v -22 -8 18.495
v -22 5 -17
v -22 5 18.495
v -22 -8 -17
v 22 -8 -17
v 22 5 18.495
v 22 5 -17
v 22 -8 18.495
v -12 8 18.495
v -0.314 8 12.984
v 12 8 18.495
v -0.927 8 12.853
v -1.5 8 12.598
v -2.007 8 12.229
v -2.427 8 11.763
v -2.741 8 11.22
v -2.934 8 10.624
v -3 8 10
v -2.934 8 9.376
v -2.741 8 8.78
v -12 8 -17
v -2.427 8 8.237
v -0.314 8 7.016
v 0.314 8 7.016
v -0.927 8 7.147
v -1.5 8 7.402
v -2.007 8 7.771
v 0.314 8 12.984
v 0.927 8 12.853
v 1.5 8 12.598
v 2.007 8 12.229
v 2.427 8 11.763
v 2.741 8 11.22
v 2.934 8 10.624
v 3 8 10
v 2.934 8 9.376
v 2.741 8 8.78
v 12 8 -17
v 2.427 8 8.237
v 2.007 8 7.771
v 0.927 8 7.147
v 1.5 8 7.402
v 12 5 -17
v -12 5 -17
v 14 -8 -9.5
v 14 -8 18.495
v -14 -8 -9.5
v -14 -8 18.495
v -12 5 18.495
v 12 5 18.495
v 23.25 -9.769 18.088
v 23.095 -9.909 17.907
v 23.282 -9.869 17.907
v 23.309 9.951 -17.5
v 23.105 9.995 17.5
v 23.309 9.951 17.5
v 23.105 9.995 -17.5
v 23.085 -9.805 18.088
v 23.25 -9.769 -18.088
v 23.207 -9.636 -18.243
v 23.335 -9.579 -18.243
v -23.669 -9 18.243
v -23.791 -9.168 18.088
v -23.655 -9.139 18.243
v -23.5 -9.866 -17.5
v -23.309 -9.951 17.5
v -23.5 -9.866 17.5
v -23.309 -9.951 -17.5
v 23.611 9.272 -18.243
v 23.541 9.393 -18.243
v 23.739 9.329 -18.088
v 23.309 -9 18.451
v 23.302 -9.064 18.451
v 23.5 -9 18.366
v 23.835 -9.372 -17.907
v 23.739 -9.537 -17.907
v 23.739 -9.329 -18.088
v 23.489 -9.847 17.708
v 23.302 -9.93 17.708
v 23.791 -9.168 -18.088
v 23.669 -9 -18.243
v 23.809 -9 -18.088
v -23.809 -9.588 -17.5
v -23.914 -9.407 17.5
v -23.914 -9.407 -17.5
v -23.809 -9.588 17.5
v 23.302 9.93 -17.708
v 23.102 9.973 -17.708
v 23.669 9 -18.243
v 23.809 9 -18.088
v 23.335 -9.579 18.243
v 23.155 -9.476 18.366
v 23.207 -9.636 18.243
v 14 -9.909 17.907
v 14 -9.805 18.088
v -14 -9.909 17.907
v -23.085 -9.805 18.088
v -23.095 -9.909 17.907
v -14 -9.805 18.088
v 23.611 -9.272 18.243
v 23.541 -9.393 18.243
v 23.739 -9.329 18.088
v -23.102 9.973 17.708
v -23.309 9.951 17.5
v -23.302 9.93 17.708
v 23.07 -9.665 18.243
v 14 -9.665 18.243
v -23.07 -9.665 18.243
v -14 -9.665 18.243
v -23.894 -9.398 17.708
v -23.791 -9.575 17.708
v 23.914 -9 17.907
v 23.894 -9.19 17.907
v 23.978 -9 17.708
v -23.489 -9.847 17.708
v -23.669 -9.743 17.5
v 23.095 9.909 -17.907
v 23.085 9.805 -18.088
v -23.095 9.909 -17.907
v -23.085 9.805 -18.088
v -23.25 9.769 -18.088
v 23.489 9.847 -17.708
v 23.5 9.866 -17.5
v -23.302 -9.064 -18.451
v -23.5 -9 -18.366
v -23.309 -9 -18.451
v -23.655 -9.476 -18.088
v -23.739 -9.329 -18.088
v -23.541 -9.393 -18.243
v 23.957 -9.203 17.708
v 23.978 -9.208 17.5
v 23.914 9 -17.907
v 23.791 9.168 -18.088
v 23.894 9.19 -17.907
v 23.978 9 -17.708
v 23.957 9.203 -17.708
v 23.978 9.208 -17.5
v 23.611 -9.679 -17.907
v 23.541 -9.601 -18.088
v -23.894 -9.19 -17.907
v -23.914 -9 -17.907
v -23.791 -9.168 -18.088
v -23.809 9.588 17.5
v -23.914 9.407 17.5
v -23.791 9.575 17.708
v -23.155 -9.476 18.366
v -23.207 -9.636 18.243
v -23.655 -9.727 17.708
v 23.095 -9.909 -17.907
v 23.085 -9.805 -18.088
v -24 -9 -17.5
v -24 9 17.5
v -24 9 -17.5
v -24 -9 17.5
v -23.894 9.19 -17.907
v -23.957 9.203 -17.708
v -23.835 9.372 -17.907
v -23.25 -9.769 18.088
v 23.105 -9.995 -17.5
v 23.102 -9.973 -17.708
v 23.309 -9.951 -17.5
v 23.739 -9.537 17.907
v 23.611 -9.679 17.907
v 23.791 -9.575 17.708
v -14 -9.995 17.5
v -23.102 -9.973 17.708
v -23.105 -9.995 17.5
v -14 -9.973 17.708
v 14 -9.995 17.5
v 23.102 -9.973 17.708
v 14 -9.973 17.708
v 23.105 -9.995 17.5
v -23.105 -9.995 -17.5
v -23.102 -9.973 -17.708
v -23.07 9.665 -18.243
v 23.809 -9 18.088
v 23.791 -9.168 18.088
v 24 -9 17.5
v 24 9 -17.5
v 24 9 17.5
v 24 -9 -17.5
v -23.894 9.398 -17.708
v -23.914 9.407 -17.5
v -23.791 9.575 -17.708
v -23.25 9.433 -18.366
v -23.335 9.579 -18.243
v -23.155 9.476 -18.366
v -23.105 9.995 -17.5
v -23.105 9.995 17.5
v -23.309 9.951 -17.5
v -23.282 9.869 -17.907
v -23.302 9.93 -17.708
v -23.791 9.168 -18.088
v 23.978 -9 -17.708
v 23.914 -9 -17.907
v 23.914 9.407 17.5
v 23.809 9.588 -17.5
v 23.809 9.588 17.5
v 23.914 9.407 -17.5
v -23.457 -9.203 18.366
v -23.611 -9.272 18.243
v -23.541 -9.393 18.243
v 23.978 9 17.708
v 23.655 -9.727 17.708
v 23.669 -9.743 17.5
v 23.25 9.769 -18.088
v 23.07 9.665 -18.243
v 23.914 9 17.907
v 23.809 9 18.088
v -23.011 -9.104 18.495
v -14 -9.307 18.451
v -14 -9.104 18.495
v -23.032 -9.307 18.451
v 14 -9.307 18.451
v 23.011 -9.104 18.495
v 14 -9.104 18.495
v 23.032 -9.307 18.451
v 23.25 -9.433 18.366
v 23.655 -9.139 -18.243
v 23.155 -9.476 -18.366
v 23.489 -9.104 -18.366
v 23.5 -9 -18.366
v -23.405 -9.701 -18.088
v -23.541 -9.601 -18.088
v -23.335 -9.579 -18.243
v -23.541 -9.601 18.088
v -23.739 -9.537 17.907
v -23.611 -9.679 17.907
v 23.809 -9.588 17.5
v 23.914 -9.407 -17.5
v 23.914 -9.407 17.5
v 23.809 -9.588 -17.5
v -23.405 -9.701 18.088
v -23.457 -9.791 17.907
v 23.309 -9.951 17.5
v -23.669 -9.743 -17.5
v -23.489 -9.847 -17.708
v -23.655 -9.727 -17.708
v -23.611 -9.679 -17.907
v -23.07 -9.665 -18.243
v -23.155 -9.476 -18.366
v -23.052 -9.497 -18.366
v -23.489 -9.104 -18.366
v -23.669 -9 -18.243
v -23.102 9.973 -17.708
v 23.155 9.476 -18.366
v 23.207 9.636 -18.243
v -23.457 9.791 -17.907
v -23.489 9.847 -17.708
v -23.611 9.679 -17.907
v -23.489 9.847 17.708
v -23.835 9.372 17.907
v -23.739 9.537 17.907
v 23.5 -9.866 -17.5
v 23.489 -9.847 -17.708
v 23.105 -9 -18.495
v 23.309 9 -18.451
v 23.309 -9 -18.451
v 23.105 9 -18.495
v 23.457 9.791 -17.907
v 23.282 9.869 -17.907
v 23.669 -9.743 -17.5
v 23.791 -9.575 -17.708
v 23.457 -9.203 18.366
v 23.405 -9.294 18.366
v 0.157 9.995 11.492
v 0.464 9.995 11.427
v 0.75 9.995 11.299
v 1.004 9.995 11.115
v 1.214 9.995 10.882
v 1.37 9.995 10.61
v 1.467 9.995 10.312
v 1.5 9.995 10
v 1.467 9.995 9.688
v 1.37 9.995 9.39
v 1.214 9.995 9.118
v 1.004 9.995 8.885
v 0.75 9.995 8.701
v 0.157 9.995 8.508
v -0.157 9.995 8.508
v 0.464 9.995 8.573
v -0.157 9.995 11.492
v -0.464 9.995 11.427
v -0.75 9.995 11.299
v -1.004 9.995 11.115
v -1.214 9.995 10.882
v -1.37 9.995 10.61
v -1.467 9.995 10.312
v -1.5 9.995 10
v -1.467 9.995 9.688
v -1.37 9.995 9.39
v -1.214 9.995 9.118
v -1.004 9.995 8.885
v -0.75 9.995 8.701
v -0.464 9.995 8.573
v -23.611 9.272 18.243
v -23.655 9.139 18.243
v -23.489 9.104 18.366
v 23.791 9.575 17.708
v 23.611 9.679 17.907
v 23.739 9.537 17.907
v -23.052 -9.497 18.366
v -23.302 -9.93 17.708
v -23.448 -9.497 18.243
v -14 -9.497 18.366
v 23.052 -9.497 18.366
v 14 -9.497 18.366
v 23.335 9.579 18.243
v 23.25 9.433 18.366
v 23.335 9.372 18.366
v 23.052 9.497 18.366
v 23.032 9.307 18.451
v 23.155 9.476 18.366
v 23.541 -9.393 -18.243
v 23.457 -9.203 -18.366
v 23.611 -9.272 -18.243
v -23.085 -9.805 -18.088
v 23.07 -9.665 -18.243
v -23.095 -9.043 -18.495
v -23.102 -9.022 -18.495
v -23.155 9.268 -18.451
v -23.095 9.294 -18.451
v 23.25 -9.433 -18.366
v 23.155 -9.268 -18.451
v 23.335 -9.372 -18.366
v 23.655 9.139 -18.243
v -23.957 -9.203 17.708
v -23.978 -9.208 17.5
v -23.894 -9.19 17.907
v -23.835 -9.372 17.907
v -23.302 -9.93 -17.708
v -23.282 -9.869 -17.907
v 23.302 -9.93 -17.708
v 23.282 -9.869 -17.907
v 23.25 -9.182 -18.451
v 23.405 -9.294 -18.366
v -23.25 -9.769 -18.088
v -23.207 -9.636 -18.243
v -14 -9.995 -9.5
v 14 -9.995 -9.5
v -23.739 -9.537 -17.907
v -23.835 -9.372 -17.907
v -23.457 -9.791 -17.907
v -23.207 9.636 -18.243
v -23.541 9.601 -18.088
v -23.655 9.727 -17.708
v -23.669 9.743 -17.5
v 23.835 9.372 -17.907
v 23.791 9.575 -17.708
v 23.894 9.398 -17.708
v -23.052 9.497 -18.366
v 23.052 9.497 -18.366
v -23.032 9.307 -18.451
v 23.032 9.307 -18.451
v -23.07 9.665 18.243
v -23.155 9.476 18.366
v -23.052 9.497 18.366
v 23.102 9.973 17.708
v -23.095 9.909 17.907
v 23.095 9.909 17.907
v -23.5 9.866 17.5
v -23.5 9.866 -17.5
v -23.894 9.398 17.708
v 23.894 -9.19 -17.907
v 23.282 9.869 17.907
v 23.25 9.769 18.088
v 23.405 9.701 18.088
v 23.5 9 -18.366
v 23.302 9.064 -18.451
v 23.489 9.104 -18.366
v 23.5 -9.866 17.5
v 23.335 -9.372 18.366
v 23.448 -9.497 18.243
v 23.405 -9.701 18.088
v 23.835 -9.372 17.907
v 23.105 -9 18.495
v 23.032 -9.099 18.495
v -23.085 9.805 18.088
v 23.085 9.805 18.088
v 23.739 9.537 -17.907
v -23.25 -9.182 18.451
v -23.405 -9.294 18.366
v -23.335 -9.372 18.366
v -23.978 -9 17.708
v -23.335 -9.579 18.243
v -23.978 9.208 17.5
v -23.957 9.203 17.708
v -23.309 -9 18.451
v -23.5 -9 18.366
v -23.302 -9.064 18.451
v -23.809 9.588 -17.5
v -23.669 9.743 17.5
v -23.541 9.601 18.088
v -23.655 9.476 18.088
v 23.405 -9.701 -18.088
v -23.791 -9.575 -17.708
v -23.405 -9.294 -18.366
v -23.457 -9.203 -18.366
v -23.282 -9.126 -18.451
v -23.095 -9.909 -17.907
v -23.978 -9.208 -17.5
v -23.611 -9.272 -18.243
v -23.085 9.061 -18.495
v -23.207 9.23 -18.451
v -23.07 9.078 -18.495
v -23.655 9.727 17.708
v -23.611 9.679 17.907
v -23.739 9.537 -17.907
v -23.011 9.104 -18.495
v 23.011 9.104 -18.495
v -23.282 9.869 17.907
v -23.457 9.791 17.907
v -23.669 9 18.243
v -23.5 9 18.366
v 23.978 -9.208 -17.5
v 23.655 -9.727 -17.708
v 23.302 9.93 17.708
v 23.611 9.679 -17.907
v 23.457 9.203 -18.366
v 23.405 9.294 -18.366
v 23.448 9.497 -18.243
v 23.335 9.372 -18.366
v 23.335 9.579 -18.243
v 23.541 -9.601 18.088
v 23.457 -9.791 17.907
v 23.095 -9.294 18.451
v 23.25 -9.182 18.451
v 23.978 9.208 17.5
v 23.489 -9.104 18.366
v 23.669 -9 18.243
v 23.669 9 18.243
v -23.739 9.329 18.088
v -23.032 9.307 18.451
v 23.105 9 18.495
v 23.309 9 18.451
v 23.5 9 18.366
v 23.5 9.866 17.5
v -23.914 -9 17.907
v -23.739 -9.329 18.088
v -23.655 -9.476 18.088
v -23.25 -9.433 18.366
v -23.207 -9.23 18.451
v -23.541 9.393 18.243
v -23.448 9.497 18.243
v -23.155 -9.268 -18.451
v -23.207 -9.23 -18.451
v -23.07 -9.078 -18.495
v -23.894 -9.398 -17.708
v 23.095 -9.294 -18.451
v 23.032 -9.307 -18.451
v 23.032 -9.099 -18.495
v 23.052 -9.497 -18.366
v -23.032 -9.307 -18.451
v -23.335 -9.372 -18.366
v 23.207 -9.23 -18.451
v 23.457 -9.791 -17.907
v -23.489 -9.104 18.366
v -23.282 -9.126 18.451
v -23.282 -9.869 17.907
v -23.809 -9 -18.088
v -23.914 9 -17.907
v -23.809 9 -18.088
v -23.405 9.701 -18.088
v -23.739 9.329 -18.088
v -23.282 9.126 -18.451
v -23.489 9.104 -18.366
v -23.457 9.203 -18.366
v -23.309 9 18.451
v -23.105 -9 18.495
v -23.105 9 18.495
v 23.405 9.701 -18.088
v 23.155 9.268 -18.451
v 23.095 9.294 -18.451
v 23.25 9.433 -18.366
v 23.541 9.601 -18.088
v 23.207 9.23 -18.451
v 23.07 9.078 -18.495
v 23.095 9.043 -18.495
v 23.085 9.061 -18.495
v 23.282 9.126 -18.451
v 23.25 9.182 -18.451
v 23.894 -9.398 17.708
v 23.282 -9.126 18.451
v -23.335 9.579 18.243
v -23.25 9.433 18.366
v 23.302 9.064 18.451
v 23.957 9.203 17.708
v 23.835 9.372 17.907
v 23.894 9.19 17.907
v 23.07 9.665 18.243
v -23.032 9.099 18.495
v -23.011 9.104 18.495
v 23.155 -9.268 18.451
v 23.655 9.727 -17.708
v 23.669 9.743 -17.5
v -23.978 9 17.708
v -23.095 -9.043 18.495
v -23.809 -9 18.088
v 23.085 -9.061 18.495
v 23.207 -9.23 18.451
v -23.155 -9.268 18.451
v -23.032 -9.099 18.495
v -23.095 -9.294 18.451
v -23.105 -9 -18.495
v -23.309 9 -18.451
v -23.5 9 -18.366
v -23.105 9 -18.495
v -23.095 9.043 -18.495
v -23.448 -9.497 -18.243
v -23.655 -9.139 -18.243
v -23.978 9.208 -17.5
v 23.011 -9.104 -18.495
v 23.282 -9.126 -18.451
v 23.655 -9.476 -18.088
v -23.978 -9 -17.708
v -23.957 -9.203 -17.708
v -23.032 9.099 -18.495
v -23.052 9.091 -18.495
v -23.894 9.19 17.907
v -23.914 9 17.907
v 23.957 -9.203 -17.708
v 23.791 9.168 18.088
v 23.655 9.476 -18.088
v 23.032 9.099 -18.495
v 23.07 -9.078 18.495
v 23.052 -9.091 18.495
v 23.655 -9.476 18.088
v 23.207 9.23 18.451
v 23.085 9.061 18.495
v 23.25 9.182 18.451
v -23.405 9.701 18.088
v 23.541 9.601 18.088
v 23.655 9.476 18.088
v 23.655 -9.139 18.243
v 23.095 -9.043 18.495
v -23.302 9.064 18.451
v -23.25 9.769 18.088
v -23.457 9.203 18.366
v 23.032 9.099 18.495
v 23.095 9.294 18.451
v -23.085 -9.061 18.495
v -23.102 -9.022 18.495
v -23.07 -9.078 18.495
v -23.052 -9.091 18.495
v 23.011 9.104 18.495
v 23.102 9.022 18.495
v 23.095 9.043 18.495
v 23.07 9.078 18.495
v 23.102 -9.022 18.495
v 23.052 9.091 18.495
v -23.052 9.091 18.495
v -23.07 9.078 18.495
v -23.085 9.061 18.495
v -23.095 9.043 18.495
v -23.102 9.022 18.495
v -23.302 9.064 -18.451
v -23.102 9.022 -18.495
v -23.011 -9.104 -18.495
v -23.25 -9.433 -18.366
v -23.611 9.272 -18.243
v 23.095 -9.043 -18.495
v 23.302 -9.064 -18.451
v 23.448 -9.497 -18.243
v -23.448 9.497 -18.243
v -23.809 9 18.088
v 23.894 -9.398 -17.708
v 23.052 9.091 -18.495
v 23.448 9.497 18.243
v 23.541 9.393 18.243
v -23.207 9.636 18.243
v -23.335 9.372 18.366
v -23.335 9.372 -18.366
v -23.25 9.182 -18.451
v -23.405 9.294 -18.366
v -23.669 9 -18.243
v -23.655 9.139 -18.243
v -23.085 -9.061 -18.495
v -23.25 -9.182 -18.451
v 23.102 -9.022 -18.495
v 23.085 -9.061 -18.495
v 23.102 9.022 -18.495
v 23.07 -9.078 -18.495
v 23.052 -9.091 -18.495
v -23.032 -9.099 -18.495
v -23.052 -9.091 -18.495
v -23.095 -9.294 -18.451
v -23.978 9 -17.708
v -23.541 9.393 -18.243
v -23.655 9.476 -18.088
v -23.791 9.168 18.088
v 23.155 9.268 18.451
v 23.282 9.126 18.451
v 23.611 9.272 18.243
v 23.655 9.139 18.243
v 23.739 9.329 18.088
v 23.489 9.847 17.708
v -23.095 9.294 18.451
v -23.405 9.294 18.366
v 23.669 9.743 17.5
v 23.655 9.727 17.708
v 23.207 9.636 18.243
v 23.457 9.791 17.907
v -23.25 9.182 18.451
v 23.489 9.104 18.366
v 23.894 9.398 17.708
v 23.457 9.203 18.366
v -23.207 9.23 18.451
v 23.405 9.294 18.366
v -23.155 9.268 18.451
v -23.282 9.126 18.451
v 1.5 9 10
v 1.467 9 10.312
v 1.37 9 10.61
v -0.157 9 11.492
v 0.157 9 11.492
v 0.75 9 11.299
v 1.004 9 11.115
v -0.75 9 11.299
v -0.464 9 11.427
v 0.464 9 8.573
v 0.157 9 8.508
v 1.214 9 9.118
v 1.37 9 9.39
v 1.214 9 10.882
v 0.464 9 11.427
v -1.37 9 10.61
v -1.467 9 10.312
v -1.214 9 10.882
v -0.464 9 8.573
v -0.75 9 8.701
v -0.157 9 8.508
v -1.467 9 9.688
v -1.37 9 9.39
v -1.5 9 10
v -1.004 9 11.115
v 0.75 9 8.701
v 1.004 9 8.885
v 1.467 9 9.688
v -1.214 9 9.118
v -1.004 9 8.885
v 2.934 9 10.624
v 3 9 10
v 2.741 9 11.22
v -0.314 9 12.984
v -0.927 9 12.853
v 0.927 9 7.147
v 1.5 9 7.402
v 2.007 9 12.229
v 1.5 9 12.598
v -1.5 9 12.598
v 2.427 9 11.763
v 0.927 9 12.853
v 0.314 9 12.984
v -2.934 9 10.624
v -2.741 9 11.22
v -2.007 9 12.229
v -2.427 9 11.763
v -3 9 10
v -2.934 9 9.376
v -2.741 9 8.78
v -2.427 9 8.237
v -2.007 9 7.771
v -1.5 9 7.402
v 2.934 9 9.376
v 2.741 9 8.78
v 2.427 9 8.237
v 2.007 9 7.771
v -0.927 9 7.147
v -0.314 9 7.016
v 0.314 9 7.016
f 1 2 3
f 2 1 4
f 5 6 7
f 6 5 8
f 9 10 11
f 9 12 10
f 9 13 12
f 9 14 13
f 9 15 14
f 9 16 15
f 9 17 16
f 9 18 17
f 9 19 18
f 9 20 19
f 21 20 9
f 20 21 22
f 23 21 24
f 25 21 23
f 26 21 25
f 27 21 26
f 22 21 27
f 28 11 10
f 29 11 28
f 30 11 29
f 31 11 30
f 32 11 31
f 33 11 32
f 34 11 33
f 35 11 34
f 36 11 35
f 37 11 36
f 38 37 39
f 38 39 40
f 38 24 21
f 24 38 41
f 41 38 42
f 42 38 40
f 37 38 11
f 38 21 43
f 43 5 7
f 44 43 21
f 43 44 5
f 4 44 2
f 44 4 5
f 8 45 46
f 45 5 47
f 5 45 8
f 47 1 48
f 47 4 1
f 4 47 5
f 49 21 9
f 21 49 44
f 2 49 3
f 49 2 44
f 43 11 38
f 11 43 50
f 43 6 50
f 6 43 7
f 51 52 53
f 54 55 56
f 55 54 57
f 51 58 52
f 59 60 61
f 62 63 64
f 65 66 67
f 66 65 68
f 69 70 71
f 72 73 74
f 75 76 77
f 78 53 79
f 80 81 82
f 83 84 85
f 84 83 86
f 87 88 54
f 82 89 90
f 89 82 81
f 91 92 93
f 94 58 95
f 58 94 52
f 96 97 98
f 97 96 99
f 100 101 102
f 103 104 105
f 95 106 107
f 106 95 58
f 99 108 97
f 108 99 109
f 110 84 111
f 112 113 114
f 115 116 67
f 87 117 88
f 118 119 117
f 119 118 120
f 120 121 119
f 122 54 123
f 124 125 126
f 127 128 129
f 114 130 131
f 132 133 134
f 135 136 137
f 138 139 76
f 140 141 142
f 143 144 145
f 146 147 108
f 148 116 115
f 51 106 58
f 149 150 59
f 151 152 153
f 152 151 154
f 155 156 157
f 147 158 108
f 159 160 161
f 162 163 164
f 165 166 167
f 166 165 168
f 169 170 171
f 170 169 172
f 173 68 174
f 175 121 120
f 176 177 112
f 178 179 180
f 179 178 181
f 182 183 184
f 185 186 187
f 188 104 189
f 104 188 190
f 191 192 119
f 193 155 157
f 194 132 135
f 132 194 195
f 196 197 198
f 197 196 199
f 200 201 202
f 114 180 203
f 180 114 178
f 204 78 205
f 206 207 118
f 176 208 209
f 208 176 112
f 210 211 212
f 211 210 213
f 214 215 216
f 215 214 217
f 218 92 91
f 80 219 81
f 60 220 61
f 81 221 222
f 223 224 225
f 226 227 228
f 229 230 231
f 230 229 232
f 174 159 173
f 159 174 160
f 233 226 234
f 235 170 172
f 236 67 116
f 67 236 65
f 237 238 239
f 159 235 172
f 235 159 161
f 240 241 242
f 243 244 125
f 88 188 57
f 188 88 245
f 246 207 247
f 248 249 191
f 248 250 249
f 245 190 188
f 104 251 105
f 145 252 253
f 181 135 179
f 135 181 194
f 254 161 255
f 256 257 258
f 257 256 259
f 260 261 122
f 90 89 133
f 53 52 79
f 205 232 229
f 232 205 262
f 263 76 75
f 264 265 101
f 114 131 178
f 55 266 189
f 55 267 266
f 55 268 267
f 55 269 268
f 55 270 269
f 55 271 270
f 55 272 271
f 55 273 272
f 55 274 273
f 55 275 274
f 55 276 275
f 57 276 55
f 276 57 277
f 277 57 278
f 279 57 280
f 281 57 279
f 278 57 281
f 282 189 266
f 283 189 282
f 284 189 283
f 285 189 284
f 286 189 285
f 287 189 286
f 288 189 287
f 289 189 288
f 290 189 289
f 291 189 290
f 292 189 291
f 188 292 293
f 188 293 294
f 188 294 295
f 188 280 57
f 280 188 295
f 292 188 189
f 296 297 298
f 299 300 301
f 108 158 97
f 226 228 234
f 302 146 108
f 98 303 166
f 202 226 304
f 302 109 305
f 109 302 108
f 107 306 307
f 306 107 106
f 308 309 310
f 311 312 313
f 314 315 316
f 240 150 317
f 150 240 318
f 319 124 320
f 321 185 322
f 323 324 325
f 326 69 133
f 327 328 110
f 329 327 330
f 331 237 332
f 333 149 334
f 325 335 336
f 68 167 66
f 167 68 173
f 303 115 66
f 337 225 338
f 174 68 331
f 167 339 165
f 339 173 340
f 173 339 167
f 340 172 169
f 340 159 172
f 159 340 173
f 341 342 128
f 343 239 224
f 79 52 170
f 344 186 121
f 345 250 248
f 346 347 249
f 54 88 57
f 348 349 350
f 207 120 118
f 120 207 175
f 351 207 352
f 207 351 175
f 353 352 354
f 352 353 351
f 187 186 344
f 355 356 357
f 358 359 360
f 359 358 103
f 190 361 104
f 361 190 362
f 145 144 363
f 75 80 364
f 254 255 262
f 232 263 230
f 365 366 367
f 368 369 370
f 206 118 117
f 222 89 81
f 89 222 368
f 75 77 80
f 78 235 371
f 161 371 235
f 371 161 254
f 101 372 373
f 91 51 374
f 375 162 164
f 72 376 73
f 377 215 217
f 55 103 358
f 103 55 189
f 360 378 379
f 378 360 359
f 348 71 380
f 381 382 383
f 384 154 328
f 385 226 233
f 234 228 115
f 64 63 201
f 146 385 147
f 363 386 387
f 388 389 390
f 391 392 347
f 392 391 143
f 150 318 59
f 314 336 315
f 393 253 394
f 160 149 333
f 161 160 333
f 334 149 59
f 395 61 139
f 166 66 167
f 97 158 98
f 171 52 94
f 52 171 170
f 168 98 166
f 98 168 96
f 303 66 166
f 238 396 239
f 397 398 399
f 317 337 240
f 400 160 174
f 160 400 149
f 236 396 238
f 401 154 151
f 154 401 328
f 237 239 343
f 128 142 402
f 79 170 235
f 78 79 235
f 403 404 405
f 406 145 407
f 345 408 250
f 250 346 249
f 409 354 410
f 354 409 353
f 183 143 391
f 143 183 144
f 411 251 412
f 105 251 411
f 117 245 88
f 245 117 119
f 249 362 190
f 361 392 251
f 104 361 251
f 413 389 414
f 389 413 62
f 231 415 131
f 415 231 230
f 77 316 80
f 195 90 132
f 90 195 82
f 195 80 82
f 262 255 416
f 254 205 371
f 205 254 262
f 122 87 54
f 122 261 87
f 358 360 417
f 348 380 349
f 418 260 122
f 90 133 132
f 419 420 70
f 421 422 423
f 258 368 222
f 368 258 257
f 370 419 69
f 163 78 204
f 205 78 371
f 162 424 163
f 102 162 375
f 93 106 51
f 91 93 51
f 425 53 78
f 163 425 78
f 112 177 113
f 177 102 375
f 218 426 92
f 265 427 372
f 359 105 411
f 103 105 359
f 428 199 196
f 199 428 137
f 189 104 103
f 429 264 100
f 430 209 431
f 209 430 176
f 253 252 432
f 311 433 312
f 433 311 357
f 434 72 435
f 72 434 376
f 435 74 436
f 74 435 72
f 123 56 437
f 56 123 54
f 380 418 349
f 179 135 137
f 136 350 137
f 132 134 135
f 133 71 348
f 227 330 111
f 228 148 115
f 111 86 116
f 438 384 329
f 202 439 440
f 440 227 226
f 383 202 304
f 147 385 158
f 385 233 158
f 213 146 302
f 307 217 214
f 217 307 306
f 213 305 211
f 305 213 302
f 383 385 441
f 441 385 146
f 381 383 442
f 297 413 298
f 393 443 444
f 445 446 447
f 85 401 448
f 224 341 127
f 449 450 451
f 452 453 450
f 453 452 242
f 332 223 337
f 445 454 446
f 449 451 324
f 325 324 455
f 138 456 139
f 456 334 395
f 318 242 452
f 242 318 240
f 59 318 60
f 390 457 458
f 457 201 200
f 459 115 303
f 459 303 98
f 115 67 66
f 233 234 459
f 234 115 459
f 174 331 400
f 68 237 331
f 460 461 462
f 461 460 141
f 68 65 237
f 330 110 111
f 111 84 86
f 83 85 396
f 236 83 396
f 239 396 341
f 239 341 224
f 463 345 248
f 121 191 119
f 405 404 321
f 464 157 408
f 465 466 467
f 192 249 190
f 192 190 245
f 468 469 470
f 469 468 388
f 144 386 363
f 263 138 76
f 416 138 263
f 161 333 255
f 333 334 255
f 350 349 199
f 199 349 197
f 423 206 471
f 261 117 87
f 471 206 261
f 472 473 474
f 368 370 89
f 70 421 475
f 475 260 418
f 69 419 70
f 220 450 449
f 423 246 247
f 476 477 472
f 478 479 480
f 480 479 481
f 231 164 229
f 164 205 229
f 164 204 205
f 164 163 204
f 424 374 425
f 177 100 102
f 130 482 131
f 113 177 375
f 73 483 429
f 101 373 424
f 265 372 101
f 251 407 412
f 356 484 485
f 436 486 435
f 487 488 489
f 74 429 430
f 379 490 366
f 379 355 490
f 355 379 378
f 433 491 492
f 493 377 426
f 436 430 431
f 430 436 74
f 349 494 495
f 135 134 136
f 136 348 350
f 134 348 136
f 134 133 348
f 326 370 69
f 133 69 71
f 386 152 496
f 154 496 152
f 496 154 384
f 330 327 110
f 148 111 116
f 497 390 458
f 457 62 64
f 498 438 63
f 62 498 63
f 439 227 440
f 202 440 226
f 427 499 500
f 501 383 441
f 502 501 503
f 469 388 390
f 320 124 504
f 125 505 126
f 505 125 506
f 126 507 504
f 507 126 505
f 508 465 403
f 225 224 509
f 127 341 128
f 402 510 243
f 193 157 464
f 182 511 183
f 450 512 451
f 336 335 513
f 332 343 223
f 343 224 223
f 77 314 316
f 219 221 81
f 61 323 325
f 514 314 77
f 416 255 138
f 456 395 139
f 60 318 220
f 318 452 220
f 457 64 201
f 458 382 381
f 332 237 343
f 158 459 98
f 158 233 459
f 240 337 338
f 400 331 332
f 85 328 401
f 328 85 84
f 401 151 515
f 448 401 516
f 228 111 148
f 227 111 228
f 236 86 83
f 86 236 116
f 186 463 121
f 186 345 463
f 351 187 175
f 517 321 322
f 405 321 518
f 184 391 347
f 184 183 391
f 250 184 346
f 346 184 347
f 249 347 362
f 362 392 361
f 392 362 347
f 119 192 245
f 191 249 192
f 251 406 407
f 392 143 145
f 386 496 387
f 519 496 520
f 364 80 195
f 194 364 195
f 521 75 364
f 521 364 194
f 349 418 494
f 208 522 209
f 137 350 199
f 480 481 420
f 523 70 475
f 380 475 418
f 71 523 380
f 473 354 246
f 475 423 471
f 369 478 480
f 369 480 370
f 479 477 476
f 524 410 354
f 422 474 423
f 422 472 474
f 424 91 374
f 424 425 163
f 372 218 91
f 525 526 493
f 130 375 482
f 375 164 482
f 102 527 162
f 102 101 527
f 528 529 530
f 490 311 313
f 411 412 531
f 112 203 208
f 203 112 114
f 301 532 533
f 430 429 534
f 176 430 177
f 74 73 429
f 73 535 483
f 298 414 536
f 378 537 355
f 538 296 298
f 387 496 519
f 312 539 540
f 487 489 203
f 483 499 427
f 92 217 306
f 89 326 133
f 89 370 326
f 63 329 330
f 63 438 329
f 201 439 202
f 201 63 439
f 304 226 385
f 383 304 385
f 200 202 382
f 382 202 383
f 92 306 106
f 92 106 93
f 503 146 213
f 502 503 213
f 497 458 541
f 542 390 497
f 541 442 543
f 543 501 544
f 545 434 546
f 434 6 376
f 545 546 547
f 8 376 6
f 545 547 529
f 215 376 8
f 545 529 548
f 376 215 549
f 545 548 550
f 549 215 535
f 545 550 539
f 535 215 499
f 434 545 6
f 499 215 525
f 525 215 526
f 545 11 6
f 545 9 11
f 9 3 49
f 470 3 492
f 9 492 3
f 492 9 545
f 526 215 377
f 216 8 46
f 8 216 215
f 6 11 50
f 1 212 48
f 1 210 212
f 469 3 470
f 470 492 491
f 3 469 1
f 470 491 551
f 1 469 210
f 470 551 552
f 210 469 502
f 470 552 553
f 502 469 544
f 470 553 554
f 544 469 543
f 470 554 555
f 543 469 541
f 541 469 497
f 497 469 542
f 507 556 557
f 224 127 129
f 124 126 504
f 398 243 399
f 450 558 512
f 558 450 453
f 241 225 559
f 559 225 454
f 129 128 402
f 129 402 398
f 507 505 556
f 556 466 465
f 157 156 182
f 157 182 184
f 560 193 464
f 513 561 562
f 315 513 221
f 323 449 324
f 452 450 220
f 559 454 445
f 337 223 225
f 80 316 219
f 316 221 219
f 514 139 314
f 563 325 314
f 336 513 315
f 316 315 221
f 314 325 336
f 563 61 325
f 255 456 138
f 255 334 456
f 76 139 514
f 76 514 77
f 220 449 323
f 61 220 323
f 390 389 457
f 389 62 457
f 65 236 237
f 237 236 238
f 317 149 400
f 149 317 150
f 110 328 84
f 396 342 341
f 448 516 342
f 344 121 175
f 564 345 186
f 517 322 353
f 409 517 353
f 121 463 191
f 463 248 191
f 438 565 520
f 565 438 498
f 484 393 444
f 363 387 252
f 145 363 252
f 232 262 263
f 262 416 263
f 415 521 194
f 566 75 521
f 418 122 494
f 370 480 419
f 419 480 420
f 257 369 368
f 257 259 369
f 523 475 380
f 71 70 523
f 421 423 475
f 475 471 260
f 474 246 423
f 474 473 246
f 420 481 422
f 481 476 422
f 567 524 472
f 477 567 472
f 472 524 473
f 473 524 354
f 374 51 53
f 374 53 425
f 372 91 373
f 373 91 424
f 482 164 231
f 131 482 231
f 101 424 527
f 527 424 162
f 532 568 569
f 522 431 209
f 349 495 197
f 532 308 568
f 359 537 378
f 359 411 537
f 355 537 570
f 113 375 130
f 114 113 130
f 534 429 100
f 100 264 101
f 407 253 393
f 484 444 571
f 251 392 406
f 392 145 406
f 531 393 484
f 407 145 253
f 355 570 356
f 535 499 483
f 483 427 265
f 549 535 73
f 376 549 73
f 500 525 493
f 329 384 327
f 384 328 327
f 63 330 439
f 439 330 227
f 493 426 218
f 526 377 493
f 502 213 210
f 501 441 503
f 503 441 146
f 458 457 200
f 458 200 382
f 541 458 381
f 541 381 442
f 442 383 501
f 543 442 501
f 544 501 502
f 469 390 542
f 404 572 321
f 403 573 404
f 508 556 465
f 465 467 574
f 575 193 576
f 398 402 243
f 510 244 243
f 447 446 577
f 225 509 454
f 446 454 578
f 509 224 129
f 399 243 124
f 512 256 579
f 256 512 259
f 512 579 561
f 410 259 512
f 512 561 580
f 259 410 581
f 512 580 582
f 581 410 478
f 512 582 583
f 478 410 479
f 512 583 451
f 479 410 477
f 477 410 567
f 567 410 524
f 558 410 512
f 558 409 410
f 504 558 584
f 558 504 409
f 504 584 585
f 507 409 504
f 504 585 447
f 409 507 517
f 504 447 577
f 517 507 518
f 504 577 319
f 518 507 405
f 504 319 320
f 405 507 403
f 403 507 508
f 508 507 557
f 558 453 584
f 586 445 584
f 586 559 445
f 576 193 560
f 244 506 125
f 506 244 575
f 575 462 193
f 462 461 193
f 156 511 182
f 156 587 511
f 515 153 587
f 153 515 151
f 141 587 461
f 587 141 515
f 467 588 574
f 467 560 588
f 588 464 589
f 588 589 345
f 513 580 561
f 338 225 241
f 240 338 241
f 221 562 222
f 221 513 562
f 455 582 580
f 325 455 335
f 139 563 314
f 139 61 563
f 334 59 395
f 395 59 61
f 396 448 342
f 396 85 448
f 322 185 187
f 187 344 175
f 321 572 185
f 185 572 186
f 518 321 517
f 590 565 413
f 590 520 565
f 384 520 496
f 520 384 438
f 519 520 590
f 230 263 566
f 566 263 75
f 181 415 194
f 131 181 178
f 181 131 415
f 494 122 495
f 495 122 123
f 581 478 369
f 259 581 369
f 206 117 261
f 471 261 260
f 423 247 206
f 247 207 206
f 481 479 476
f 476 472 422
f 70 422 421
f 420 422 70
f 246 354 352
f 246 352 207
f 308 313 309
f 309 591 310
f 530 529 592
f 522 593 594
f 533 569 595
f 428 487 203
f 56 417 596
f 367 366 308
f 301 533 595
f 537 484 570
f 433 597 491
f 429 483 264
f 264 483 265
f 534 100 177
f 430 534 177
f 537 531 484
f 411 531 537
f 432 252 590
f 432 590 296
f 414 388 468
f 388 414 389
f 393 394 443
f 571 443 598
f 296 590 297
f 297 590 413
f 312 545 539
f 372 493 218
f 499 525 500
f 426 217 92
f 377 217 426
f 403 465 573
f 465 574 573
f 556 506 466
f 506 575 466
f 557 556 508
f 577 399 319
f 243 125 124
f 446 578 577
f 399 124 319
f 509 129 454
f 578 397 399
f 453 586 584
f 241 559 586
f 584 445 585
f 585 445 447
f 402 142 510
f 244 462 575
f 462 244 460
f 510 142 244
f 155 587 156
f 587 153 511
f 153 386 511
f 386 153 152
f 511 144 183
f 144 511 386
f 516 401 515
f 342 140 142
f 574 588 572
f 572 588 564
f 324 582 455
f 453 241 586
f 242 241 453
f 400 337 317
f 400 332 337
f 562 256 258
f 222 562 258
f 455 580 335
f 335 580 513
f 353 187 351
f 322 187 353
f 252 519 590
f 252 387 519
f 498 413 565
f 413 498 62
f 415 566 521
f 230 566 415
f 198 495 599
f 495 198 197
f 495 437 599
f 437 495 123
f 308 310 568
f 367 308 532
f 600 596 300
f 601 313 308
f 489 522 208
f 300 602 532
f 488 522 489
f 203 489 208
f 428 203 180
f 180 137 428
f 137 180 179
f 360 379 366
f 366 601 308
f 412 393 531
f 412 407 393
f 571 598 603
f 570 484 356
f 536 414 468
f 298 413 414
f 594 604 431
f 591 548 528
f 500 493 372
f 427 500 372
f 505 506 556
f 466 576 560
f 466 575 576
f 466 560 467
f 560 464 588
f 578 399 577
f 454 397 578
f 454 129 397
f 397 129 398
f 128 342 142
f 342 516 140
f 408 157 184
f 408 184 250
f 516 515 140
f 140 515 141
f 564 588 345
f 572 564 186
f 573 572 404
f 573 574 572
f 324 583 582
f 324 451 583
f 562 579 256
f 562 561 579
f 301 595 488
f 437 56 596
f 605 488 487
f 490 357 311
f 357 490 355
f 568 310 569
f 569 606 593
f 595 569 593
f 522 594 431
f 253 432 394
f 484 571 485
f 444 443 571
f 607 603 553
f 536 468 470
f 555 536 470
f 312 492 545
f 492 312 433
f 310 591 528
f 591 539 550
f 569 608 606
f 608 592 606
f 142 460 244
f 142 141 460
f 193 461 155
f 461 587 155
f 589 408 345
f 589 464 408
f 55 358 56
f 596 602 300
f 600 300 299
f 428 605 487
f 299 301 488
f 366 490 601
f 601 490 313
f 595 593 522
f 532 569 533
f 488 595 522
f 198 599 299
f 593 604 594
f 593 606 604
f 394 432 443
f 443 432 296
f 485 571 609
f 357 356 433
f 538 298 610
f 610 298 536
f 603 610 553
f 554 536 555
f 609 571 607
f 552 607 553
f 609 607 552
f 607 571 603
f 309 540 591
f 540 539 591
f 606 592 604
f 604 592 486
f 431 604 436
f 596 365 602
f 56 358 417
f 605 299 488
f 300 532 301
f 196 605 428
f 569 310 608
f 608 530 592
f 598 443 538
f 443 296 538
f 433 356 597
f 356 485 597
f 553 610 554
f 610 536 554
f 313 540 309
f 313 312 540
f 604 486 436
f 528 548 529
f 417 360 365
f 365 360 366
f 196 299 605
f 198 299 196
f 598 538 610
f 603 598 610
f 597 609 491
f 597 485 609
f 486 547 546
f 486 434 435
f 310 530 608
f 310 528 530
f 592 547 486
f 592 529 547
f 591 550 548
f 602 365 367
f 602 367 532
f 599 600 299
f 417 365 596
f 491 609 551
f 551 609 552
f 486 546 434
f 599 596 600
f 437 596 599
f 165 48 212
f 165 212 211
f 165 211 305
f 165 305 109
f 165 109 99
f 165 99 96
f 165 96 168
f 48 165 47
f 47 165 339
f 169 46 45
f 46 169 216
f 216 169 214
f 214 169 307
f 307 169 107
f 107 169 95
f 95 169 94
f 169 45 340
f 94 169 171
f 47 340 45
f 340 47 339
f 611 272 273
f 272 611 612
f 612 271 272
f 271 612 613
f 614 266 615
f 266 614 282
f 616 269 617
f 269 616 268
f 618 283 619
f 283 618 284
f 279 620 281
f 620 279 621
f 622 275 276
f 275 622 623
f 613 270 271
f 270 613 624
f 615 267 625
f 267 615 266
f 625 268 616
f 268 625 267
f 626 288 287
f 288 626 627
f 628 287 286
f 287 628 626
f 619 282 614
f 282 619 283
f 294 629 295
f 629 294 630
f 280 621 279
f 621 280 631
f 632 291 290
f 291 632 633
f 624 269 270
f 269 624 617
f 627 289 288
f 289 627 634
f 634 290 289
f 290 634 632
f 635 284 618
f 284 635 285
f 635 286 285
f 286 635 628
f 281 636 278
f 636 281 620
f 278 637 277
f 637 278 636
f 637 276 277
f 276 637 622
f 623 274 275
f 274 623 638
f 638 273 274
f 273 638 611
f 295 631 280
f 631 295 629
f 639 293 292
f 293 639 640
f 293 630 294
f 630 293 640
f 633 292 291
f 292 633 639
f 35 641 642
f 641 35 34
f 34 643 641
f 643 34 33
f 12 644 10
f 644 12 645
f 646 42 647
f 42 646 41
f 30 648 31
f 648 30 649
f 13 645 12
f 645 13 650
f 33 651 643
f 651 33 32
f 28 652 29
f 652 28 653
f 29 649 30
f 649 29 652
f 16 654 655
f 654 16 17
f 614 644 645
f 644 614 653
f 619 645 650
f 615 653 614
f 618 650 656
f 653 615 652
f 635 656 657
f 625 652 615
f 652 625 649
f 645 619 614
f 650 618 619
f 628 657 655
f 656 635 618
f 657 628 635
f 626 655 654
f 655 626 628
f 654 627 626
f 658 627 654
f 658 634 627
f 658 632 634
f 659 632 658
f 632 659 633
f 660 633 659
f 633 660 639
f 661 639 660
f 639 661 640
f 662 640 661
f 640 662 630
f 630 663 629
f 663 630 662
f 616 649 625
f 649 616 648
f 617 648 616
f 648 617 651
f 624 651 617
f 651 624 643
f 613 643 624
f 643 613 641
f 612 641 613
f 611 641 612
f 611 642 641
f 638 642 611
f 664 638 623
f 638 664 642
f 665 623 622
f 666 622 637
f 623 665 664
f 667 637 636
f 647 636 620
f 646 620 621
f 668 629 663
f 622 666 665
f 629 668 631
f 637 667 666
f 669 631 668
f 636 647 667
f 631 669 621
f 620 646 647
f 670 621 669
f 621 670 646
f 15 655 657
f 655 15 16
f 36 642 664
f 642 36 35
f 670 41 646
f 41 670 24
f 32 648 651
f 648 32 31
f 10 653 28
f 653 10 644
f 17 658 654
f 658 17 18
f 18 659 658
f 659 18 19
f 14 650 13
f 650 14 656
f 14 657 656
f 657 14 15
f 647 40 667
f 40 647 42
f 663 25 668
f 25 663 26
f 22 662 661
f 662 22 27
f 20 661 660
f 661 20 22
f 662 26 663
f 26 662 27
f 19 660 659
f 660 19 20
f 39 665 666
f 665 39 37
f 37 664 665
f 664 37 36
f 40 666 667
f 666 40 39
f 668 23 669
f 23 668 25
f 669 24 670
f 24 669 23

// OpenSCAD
// LYWS 43 43 16
$fn=30;
difference() {
    minkowski() {
        cube([46,18,35],center=true);
        sphere(d=2);
    }
    difference() {
        translate([0,0,2.5])cube([44,16,39],center=true);
        translate([-17,7,0])cube([10,16-12,40],center=true);
        translate([17,7,0])cube([10,16-12,40],center=true);
    }
    translate([0,-5,4.5]) cube([28,16,28],center=true);
    translate([0,-5,12.5]) cube([28,16,28],center=true);
    translate([0,9,10])rotate([90,0,0])cylinder(h=2,d=3,center=true);
    translate([0,8.5,10])rotate([90,0,0])cylinder(h=1,d=6,center=true);
}
